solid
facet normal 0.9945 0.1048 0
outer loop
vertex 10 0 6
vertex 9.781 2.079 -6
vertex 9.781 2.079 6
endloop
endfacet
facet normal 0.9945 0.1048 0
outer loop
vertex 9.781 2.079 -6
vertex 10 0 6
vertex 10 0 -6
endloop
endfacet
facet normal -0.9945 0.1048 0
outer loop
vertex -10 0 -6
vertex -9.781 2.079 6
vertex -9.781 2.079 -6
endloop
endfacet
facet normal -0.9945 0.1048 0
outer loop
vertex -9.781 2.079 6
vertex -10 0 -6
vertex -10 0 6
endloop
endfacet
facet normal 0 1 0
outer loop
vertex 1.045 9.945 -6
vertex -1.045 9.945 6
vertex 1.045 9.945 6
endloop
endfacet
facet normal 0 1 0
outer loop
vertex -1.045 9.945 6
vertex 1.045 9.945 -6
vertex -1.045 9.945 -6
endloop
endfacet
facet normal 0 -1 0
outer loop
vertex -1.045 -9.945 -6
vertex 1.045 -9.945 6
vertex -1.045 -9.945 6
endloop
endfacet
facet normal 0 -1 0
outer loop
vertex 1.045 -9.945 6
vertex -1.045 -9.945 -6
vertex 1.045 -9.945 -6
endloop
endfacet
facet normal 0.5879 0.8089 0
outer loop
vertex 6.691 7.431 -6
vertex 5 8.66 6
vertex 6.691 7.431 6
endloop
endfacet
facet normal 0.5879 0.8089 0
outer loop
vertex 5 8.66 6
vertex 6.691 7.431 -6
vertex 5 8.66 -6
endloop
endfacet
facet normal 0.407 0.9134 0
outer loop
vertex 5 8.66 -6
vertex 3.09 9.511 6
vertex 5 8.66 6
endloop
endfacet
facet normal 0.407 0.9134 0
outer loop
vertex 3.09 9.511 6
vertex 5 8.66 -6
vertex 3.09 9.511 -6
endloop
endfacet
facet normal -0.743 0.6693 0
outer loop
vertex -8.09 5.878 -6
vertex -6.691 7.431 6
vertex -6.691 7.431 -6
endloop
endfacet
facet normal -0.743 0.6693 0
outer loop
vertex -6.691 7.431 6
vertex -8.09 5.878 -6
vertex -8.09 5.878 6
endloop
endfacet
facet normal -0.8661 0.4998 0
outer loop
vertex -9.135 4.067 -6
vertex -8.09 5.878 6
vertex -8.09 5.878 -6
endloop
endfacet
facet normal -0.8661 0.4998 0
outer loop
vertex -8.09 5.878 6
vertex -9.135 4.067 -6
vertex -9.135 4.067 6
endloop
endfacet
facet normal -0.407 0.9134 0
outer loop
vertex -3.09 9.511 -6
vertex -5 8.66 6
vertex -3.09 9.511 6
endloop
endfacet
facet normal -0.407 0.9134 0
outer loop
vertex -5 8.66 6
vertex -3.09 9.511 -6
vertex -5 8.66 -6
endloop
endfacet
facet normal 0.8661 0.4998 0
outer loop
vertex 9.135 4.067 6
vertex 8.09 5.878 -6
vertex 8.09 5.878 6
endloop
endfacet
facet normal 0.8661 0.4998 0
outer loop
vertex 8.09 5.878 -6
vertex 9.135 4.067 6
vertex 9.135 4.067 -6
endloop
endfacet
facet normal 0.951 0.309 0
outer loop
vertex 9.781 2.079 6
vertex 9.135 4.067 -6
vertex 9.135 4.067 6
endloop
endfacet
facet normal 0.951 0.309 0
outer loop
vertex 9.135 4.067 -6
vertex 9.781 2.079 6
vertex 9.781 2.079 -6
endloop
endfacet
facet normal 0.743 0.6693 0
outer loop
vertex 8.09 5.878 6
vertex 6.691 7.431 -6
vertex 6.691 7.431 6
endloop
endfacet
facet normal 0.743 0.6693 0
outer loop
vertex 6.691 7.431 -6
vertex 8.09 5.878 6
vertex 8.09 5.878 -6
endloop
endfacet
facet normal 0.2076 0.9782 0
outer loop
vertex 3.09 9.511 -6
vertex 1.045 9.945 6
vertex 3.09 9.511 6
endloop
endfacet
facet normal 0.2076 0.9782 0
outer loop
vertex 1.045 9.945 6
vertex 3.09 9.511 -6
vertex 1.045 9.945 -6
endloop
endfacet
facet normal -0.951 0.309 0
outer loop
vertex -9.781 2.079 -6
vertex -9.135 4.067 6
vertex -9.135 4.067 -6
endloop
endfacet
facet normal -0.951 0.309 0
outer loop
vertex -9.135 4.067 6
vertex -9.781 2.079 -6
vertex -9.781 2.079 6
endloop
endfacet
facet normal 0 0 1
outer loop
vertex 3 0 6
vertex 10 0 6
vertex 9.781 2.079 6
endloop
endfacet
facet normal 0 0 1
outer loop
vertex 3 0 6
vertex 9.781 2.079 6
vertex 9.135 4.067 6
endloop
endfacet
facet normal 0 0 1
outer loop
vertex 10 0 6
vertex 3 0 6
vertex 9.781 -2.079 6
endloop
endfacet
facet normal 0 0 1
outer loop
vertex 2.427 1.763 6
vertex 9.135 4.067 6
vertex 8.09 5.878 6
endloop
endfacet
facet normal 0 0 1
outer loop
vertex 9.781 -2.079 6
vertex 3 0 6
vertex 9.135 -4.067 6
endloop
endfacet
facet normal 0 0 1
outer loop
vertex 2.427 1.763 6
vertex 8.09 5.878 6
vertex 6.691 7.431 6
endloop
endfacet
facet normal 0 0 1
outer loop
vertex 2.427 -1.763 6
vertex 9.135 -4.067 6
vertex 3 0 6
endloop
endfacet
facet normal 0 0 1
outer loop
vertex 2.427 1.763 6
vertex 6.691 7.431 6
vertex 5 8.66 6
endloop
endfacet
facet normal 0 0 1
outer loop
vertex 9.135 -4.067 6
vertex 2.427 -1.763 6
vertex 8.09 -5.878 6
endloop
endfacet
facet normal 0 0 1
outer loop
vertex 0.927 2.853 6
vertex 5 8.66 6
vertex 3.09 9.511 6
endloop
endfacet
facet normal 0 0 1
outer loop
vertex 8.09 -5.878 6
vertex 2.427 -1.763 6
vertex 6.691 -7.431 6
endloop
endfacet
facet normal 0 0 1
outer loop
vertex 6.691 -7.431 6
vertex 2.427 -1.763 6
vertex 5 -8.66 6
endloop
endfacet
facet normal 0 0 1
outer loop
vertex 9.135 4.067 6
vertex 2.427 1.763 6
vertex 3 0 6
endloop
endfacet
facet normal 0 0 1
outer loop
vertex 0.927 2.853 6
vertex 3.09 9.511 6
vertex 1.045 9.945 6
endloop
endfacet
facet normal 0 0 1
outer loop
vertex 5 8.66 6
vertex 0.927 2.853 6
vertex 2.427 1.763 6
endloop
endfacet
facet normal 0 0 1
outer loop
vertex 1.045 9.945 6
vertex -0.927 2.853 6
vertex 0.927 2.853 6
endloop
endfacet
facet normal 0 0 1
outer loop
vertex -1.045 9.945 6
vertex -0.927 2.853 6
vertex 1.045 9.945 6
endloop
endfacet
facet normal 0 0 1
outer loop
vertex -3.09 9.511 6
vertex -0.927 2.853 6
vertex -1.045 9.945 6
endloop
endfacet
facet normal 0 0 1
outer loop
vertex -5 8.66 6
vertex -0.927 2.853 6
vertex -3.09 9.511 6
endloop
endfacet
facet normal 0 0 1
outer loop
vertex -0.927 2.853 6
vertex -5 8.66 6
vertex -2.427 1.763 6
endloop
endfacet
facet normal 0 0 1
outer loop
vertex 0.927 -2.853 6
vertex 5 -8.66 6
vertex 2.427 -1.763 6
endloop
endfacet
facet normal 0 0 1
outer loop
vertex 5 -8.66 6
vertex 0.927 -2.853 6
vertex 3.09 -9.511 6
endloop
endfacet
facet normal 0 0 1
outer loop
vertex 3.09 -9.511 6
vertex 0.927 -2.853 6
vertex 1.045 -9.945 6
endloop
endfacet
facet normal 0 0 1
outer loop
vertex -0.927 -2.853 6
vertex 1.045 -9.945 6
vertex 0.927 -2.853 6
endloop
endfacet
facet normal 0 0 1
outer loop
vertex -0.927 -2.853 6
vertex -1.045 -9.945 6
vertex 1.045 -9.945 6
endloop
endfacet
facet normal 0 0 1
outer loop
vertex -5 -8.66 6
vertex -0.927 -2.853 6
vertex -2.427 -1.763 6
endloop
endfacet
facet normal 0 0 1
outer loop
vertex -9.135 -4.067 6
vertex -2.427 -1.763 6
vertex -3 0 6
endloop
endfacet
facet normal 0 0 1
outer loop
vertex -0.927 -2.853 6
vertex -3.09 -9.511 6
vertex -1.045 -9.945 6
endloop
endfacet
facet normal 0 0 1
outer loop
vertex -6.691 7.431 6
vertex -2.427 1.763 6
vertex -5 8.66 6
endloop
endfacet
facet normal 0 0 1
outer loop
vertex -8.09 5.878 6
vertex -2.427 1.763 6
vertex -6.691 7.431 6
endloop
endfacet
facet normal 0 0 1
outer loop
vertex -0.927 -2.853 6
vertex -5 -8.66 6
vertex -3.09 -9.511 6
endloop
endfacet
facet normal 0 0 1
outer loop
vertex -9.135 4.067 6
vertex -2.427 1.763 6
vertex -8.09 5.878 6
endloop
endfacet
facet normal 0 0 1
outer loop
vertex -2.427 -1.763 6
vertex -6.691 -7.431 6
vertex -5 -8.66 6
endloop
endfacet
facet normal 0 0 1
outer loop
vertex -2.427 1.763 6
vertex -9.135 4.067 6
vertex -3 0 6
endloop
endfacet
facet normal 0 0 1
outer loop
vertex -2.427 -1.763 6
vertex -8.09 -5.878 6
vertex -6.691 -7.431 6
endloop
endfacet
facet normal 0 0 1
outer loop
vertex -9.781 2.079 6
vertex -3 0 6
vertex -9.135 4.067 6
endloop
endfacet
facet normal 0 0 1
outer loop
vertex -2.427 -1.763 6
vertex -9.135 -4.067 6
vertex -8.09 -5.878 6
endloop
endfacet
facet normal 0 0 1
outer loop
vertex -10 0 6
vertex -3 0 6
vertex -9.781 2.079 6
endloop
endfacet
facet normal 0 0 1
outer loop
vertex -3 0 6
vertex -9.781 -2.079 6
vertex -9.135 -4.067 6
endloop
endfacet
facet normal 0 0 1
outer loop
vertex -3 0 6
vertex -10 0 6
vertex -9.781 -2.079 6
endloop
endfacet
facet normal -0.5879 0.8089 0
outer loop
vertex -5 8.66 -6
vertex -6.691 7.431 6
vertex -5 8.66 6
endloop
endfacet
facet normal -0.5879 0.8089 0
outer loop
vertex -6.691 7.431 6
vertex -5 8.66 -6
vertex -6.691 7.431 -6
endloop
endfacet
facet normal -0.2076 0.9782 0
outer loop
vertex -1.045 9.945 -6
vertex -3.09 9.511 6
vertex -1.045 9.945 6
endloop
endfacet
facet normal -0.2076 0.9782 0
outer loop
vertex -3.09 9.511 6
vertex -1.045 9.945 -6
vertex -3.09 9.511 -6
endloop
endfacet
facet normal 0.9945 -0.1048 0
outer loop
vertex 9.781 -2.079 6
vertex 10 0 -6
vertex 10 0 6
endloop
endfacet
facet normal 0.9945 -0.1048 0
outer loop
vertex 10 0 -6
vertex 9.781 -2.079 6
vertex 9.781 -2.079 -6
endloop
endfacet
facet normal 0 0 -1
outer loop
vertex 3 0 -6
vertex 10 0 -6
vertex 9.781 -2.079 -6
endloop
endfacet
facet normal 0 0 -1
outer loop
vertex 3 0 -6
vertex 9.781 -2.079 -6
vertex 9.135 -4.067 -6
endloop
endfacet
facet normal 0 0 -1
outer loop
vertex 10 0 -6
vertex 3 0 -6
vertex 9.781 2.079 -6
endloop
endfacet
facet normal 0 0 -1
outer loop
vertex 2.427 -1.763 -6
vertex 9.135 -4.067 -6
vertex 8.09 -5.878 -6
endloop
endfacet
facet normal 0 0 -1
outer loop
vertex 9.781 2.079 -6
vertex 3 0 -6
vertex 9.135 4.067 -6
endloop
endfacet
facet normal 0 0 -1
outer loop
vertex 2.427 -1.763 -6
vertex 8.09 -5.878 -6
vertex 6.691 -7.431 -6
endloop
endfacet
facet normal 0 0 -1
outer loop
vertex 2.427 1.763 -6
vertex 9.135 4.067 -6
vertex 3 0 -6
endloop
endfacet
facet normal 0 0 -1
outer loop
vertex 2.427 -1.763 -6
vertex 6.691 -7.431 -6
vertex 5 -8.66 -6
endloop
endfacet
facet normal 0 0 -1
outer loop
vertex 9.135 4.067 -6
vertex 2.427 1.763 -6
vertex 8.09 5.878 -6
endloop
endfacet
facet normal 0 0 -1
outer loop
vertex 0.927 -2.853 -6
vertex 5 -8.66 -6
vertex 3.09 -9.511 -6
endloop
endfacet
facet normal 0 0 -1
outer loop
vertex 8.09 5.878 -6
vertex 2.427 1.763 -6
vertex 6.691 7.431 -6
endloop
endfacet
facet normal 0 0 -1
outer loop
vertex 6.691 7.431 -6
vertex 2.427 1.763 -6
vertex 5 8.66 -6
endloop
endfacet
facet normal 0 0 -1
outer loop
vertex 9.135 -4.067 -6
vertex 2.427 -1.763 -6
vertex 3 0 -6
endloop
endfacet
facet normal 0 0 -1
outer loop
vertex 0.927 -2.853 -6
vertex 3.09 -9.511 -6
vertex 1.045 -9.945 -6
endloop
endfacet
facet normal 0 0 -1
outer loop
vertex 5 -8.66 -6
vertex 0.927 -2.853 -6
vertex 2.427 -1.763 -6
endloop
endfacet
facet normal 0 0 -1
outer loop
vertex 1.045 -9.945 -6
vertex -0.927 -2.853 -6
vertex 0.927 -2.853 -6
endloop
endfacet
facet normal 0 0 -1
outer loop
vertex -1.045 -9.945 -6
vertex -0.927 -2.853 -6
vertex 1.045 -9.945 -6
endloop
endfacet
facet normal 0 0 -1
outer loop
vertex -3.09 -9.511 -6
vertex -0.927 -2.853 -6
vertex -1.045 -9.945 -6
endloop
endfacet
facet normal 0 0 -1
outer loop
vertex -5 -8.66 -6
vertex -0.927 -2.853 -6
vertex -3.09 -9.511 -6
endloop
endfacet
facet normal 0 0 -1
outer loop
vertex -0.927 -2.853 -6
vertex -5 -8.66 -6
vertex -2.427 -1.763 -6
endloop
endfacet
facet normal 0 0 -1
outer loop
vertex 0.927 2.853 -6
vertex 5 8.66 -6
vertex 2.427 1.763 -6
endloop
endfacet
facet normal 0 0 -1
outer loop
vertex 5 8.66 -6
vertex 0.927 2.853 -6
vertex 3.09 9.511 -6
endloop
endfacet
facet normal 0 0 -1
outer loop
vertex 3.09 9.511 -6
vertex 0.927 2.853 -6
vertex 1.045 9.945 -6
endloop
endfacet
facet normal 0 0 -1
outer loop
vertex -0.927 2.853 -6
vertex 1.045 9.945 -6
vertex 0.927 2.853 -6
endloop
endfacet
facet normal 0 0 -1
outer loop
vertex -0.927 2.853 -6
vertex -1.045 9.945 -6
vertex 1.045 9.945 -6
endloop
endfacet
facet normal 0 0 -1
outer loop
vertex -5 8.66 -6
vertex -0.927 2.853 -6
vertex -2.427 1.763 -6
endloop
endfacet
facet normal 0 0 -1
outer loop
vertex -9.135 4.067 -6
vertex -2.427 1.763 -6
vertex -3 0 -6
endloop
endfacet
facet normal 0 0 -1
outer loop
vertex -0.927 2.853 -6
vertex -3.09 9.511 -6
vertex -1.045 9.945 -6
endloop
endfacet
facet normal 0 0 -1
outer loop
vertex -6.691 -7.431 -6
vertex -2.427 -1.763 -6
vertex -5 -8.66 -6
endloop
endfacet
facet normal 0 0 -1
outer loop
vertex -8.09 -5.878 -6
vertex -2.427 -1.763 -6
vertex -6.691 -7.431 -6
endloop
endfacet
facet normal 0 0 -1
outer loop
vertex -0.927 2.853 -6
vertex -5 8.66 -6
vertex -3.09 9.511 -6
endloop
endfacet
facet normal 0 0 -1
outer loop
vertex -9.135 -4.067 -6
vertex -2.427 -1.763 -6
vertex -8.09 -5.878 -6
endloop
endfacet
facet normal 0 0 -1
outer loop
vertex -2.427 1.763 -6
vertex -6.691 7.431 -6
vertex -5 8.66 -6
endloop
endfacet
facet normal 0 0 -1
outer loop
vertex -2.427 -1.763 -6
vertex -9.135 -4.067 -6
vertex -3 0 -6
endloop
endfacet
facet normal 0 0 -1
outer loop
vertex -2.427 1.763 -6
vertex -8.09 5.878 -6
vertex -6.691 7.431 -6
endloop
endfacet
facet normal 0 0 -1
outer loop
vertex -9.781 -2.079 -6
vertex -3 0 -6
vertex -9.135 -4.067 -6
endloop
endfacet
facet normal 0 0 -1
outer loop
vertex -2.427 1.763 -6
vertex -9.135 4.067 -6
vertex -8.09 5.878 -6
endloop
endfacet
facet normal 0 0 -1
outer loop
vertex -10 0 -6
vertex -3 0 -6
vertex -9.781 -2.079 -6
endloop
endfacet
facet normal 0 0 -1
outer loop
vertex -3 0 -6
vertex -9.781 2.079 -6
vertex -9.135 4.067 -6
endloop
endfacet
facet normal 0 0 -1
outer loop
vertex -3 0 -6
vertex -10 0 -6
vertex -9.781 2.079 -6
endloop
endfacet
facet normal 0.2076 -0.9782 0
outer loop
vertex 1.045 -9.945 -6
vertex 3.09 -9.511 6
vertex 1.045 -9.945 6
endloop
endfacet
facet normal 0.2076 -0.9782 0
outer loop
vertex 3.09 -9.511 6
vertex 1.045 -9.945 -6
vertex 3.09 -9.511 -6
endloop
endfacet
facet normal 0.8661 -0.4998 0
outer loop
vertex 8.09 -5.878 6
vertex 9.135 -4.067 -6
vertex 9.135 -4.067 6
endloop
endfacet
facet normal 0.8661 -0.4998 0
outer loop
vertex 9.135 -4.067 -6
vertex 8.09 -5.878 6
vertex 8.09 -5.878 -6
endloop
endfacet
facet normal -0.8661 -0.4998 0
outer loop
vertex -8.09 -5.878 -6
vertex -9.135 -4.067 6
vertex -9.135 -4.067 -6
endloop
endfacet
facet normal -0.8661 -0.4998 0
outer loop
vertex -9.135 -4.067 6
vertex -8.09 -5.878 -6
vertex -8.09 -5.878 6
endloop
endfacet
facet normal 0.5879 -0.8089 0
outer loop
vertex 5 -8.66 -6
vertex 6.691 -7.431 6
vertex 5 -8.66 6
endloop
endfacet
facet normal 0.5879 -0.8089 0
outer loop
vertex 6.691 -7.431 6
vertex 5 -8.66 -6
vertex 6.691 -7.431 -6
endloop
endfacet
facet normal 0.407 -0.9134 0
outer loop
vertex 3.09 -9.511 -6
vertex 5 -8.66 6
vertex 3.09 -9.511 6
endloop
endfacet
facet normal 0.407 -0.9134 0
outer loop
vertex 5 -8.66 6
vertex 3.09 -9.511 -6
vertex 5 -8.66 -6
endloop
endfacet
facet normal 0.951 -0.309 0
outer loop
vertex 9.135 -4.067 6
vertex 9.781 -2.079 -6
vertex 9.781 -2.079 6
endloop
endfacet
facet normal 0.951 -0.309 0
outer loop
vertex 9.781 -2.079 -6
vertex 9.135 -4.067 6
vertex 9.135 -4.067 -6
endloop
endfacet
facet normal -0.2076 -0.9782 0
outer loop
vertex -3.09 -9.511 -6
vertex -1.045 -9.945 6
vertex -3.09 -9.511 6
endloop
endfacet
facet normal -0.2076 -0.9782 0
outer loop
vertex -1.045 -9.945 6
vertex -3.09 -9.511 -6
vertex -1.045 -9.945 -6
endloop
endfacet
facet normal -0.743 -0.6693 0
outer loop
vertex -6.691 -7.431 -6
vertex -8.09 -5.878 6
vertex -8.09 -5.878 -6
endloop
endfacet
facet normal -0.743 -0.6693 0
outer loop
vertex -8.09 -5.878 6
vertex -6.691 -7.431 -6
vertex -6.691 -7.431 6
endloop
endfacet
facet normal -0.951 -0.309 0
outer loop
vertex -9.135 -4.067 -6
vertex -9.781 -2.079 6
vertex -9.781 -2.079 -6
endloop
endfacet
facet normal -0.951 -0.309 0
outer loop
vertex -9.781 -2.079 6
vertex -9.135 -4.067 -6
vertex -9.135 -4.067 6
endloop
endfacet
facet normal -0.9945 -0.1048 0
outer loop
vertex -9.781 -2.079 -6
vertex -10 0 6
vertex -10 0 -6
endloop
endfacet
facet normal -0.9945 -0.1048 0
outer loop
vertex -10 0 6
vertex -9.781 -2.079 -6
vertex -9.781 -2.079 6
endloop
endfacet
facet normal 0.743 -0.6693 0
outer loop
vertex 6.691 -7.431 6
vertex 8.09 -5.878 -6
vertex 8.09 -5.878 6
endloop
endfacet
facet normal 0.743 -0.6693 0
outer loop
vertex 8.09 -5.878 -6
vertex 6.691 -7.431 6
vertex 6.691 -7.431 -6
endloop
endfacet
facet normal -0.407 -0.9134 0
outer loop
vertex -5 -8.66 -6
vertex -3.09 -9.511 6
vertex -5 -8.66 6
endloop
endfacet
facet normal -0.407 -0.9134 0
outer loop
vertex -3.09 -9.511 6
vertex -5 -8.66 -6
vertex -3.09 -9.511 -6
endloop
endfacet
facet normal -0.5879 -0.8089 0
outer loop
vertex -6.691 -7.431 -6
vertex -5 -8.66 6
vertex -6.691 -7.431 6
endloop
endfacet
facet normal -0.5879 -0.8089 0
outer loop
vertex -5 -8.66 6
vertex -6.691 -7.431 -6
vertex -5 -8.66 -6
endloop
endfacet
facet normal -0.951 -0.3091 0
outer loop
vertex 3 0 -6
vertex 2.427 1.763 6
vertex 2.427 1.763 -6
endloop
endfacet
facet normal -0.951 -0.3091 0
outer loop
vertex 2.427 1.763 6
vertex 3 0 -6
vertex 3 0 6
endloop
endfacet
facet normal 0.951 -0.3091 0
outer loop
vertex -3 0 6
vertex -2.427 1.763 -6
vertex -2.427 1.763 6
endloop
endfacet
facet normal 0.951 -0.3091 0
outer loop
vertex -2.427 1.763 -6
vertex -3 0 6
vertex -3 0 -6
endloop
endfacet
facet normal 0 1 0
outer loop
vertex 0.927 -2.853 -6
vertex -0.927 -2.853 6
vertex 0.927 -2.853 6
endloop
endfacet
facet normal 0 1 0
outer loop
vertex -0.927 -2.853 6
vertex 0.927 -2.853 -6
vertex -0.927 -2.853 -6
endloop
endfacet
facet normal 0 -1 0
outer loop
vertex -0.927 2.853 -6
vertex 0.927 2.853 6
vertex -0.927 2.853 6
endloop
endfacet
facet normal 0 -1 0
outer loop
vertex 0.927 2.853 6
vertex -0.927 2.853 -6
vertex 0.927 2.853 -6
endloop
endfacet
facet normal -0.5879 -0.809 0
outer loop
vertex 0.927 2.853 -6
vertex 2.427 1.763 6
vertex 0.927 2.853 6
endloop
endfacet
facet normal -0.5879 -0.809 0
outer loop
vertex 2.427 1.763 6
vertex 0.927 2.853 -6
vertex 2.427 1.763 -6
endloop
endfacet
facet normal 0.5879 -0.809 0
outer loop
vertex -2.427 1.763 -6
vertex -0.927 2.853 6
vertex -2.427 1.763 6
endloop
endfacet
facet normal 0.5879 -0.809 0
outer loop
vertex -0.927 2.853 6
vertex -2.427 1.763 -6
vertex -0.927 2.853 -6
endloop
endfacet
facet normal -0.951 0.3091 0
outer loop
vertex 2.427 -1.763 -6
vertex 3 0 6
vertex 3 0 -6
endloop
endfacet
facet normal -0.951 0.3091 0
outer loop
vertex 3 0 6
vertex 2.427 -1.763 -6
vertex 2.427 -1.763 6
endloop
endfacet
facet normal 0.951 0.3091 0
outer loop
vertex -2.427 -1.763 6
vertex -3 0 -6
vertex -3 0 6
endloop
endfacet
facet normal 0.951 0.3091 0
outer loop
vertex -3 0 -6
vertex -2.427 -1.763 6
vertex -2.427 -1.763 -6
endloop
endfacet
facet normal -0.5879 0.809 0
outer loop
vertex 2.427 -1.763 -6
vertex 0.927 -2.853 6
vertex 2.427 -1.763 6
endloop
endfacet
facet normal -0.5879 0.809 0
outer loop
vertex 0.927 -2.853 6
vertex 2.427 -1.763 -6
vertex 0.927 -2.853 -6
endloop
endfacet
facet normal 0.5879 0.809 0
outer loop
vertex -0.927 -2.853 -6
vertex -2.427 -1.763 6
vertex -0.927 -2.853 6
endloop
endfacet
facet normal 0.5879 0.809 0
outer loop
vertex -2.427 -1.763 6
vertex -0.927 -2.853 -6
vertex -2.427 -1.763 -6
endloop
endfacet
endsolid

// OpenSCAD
// Cylindrical spacer with 6 mm hole
difference() {
    // Main spacer body
    cylinder(h = 12, d = 20, center = true);
    
    // Central 6 mm hole
    cylinder(h = 14, d = 6, center = true);
}
